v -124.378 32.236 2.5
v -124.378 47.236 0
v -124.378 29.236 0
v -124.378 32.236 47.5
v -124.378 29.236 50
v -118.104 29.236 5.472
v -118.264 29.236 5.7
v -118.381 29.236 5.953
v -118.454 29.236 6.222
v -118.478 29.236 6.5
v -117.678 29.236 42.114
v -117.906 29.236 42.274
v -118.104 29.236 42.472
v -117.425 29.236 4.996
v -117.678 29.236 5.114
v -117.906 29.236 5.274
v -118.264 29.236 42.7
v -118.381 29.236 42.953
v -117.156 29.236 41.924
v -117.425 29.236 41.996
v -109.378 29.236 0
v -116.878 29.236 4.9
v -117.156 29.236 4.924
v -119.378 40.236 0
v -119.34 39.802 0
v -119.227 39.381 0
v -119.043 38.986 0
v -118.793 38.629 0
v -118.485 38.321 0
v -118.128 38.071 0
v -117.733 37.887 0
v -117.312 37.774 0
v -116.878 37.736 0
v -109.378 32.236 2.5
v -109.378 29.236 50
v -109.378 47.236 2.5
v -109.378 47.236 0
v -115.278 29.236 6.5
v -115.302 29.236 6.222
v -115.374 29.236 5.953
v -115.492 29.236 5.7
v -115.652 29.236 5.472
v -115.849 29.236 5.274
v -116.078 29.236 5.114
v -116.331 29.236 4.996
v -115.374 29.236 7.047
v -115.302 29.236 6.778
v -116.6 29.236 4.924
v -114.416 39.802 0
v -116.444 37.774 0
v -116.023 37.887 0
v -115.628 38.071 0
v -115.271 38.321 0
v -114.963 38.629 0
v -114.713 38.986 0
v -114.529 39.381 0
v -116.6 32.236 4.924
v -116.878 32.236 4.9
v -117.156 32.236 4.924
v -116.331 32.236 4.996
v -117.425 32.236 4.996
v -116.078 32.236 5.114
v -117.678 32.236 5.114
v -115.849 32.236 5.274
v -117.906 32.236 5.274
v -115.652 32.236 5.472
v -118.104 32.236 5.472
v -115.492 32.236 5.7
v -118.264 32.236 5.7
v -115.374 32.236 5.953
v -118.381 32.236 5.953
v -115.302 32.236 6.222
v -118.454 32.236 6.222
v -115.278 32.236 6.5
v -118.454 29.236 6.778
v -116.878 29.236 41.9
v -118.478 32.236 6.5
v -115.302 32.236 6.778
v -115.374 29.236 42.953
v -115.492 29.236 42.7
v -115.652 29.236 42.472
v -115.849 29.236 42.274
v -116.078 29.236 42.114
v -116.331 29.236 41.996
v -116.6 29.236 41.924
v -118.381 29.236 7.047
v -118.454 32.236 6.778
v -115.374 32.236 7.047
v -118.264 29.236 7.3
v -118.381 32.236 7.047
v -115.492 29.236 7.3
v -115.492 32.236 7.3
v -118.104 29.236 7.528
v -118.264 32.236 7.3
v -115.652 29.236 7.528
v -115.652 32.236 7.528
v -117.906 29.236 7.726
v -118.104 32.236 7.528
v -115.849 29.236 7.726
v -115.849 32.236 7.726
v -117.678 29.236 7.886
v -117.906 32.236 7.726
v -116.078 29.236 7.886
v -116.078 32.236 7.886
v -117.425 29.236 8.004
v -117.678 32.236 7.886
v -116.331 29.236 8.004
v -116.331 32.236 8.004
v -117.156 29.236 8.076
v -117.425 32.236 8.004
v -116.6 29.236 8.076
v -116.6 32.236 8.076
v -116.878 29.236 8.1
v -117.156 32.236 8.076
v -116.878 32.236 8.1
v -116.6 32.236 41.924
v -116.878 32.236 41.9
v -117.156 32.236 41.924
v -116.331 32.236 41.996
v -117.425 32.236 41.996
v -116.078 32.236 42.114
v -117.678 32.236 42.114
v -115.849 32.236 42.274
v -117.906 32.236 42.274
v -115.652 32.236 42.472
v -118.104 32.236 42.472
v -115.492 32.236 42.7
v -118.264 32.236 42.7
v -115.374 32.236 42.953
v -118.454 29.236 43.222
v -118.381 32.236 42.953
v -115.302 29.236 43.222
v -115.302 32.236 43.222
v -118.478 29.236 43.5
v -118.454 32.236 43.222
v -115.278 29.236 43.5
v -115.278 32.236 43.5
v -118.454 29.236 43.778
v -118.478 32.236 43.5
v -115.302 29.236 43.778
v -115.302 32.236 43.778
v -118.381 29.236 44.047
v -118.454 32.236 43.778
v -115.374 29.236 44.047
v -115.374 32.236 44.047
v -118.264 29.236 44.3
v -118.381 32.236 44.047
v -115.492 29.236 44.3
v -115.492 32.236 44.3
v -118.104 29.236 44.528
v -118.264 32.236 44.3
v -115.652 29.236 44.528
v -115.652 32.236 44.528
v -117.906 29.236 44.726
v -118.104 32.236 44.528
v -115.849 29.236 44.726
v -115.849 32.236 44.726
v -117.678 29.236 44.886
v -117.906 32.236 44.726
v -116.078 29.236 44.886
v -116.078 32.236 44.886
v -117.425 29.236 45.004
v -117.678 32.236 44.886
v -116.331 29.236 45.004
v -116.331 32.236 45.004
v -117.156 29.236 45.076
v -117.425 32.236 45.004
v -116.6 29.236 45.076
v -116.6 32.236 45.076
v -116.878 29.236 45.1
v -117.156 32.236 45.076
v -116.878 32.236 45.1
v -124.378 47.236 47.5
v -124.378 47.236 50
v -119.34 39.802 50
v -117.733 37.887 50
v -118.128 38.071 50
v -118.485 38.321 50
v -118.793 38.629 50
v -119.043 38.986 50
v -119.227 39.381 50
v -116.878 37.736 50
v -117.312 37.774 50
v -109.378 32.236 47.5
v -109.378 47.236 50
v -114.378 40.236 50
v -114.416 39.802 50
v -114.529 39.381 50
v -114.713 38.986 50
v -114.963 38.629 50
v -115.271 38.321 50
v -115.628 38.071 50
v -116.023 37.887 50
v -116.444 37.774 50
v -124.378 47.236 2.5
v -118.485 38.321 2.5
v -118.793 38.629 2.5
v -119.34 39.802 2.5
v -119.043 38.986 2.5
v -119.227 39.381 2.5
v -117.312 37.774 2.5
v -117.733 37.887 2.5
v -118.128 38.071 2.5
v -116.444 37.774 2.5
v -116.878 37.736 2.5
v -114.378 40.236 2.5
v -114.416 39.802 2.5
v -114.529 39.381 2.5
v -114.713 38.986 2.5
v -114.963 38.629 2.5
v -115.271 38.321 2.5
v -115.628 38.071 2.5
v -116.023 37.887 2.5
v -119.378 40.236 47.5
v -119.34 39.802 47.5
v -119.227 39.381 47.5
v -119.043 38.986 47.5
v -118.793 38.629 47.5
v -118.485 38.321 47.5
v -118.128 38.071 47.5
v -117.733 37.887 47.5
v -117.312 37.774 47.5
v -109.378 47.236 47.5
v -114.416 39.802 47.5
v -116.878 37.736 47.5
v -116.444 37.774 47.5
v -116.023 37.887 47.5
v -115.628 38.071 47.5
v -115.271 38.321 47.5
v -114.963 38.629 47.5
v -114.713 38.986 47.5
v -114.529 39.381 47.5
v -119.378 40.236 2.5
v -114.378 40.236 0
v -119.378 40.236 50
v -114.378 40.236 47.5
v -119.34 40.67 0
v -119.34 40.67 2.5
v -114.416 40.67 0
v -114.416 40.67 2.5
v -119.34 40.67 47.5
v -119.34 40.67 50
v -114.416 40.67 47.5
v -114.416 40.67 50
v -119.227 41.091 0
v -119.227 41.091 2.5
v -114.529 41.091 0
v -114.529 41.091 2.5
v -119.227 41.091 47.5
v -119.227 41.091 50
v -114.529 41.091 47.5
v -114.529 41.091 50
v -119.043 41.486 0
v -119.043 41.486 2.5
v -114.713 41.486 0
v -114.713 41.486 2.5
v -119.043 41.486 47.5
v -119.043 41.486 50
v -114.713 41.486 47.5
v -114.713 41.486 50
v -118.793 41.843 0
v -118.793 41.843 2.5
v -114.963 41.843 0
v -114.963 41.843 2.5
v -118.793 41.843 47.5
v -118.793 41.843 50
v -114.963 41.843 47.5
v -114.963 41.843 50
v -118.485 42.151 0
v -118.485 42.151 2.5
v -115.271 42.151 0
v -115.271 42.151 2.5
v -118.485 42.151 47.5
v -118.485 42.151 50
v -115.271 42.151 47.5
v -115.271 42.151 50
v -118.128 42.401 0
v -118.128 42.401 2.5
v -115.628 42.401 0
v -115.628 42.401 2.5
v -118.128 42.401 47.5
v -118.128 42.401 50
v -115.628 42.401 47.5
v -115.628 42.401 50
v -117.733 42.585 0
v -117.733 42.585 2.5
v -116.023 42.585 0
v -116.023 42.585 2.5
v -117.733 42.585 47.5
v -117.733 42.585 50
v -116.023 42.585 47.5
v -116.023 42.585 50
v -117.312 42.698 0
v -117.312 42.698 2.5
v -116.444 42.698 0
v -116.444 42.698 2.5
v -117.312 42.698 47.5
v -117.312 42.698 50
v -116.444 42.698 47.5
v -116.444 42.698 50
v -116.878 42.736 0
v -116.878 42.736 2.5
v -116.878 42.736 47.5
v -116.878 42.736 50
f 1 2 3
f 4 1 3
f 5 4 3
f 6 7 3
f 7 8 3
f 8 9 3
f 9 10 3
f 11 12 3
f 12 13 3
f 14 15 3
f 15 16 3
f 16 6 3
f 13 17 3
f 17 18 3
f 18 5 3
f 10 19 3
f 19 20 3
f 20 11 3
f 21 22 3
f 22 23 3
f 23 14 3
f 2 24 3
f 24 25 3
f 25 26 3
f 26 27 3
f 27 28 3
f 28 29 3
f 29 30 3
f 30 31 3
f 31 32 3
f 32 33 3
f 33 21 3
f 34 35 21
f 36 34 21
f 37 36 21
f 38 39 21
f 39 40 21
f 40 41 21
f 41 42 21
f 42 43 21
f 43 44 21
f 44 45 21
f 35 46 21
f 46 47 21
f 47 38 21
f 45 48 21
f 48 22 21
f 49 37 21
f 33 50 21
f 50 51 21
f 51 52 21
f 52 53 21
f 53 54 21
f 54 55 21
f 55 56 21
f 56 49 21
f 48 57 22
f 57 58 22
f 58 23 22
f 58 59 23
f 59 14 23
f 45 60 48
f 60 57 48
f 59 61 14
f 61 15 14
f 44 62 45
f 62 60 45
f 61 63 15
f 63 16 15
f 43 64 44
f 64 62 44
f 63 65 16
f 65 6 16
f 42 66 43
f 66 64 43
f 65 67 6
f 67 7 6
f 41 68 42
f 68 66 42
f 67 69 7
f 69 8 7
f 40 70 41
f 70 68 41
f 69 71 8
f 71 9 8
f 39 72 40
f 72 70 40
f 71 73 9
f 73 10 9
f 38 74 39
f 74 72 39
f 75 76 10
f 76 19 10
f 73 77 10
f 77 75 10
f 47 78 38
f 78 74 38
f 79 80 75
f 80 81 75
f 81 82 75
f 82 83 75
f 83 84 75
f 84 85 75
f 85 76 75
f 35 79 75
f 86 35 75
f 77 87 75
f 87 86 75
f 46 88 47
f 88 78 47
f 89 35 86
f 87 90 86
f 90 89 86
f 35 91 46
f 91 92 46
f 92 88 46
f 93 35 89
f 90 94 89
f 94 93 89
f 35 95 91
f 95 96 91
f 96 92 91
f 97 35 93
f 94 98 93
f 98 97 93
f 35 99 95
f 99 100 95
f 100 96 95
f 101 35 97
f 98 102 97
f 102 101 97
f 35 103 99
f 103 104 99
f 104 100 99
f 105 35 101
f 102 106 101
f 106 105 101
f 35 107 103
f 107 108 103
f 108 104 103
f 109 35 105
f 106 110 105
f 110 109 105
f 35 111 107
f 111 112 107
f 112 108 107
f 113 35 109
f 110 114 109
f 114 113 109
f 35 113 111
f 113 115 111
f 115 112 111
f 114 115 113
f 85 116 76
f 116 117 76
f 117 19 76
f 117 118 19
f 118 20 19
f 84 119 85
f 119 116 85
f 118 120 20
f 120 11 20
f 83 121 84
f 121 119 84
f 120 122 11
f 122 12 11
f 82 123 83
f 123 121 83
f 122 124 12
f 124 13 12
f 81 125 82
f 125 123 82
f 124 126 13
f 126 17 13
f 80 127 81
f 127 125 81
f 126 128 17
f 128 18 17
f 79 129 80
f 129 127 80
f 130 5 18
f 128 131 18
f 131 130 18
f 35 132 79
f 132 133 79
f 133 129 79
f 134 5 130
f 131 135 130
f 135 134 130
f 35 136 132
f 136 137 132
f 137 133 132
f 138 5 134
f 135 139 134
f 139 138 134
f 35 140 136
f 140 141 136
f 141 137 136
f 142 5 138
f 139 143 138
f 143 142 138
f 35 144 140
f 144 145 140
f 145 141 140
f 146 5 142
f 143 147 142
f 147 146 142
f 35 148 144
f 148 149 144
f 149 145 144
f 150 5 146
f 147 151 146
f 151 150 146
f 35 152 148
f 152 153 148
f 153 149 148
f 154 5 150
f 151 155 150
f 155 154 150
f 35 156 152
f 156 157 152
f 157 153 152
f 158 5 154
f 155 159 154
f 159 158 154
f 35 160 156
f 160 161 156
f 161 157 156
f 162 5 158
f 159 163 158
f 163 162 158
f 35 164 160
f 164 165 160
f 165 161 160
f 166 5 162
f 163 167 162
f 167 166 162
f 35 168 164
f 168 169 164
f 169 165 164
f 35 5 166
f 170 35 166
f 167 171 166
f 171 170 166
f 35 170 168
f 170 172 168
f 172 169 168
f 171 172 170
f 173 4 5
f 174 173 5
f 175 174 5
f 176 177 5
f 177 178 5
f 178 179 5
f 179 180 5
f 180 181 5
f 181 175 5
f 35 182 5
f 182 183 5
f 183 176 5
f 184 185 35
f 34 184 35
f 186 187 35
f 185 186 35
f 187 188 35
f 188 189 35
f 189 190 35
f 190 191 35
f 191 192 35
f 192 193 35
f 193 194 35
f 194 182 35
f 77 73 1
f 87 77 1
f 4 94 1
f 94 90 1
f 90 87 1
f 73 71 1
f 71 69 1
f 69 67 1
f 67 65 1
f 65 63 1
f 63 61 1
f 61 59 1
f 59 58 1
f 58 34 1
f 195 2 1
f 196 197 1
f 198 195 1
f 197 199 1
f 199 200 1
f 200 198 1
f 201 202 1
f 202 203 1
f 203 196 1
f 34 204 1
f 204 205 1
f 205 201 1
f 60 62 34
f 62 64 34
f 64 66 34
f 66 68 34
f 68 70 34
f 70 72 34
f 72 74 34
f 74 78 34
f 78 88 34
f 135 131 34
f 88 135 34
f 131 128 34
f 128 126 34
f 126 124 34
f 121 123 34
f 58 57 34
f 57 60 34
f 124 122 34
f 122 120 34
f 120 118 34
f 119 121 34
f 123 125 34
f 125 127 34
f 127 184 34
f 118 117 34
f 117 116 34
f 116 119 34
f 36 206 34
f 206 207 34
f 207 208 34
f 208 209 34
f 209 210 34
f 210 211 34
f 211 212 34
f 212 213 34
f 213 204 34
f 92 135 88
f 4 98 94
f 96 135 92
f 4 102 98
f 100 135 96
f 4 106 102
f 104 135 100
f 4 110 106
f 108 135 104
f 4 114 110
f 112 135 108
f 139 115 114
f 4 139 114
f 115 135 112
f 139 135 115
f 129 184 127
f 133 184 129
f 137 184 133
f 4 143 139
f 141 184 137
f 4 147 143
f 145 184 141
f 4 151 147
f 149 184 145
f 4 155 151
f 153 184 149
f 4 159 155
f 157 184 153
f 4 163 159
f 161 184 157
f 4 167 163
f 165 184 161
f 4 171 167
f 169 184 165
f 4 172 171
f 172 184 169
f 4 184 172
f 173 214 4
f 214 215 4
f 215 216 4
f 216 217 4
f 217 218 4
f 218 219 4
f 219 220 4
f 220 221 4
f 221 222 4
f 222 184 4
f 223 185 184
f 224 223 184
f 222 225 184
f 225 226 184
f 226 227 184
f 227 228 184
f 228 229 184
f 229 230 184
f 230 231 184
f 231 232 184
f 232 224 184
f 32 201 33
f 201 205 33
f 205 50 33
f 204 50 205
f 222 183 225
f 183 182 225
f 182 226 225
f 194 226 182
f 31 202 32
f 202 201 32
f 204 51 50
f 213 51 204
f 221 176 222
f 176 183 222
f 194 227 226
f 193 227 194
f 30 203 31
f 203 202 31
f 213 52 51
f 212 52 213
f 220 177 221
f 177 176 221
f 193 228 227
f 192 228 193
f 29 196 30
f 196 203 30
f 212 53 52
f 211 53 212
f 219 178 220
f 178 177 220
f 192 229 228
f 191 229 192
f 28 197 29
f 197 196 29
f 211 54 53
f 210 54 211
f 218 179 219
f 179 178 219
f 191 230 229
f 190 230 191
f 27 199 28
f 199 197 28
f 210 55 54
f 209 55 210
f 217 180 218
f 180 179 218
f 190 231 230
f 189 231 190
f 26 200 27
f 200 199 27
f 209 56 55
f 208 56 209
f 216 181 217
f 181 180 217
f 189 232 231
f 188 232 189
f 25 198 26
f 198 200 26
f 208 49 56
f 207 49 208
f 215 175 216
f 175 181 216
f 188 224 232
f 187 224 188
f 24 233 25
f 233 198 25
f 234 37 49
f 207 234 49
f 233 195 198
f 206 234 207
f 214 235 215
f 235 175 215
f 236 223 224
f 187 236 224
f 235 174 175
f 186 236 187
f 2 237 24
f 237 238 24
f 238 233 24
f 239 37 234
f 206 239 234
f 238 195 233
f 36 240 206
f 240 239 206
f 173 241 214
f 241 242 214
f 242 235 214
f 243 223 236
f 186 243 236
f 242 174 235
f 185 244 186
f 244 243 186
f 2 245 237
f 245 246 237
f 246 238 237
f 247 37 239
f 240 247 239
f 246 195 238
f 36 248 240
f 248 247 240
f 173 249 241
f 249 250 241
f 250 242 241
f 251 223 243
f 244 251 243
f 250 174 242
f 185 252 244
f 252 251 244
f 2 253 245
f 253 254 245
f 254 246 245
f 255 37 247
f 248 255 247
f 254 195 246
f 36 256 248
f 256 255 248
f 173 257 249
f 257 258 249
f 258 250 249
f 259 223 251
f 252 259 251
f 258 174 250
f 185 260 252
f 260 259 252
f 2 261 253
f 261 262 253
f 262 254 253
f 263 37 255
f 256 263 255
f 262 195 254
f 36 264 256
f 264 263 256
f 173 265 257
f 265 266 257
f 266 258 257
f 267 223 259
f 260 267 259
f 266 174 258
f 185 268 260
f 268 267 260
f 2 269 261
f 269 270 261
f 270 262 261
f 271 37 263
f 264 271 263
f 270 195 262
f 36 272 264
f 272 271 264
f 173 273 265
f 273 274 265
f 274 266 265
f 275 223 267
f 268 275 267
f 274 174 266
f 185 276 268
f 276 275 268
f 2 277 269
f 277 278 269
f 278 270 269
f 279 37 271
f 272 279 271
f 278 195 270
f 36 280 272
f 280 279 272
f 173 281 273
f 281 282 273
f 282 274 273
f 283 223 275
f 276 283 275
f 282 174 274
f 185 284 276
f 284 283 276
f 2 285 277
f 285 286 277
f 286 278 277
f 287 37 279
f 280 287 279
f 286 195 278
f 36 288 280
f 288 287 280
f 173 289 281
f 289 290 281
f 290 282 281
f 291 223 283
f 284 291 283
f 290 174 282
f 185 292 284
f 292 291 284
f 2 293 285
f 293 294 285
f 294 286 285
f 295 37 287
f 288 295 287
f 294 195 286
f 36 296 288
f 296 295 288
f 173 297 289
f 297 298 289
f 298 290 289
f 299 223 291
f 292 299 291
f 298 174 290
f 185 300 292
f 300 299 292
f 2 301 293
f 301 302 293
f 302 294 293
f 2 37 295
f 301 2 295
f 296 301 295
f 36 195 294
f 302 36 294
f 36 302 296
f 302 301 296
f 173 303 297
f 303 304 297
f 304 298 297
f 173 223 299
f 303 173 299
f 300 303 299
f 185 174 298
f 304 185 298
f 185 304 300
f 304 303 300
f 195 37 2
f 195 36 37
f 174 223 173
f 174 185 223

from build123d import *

# Parameters (mm, degrees)
ESQUISSE1_W             = 15
ESQUISSE1_H             = 3
BOSS_EXTRU_1_DEPTH      = 50
ESQUISSE2_R             = 1.6
ENL_V_MAT_EXTRU_1_DEPTH = 45
ESQUISSE3_W             = 15
ESQUISSE3_H             = 2.5
BOSS_EXTRU_2_DEPTH      = 15
ESQUISSE4_R             = 2.5
ENL_V_MAT_EXTRU_3_DEPTH = 65


with BuildPart() as part:
    # Esquisse1 → Boss.-Extru.1 (new body)
    with BuildSketch(Plane.XY):
        with Locations((-116.877940306, 30.735985997)):
            Rectangle(ESQUISSE1_W, ESQUISSE1_H)
    extrude(amount=BOSS_EXTRU_1_DEPTH)

    # Esquisse2 → Enlèv. mat.-Extru.1 (cut)
    with BuildSketch(Plane(origin=(0, 32.235985997, 0), x_dir=(1, 0, 0), z_dir=(0, 1, 0))):
        with Locations(Location((-116.877940306, -43.5, 0), (0, 0, 270))):
            Circle(ESQUISSE2_R)
        with Locations(Location((-116.877940306, -6.5, 0), (0, 0, 270))):
            Circle(ESQUISSE2_R)
    extrude(amount=-ENL_V_MAT_EXTRU_1_DEPTH, mode=Mode.SUBTRACT)

    # Esquisse3 → Boss.-Extru.2 (add)
    with BuildSketch(Plane(origin=(0, 32.235985997, 0), x_dir=(1, 0, 0), z_dir=(0, 1, 0))):
        with Locations((-116.877940306, -48.75)):
            Rectangle(ESQUISSE3_W, ESQUISSE3_H)
        with Locations((-116.877940306, -1.25)):
            Rectangle(ESQUISSE3_W, ESQUISSE3_H)
    extrude(amount=BOSS_EXTRU_2_DEPTH)

    # Esquisse4 → Enlèv. mat.-Extru.3 (cut)
    with BuildSketch(Plane.XY.offset(50)):
        with Locations((-116.877940306, 40.235985997)):
            Circle(ESQUISSE4_R)
    extrude(amount=-ENL_V_MAT_EXTRU_3_DEPTH, mode=Mode.SUBTRACT)


solid = part.part
